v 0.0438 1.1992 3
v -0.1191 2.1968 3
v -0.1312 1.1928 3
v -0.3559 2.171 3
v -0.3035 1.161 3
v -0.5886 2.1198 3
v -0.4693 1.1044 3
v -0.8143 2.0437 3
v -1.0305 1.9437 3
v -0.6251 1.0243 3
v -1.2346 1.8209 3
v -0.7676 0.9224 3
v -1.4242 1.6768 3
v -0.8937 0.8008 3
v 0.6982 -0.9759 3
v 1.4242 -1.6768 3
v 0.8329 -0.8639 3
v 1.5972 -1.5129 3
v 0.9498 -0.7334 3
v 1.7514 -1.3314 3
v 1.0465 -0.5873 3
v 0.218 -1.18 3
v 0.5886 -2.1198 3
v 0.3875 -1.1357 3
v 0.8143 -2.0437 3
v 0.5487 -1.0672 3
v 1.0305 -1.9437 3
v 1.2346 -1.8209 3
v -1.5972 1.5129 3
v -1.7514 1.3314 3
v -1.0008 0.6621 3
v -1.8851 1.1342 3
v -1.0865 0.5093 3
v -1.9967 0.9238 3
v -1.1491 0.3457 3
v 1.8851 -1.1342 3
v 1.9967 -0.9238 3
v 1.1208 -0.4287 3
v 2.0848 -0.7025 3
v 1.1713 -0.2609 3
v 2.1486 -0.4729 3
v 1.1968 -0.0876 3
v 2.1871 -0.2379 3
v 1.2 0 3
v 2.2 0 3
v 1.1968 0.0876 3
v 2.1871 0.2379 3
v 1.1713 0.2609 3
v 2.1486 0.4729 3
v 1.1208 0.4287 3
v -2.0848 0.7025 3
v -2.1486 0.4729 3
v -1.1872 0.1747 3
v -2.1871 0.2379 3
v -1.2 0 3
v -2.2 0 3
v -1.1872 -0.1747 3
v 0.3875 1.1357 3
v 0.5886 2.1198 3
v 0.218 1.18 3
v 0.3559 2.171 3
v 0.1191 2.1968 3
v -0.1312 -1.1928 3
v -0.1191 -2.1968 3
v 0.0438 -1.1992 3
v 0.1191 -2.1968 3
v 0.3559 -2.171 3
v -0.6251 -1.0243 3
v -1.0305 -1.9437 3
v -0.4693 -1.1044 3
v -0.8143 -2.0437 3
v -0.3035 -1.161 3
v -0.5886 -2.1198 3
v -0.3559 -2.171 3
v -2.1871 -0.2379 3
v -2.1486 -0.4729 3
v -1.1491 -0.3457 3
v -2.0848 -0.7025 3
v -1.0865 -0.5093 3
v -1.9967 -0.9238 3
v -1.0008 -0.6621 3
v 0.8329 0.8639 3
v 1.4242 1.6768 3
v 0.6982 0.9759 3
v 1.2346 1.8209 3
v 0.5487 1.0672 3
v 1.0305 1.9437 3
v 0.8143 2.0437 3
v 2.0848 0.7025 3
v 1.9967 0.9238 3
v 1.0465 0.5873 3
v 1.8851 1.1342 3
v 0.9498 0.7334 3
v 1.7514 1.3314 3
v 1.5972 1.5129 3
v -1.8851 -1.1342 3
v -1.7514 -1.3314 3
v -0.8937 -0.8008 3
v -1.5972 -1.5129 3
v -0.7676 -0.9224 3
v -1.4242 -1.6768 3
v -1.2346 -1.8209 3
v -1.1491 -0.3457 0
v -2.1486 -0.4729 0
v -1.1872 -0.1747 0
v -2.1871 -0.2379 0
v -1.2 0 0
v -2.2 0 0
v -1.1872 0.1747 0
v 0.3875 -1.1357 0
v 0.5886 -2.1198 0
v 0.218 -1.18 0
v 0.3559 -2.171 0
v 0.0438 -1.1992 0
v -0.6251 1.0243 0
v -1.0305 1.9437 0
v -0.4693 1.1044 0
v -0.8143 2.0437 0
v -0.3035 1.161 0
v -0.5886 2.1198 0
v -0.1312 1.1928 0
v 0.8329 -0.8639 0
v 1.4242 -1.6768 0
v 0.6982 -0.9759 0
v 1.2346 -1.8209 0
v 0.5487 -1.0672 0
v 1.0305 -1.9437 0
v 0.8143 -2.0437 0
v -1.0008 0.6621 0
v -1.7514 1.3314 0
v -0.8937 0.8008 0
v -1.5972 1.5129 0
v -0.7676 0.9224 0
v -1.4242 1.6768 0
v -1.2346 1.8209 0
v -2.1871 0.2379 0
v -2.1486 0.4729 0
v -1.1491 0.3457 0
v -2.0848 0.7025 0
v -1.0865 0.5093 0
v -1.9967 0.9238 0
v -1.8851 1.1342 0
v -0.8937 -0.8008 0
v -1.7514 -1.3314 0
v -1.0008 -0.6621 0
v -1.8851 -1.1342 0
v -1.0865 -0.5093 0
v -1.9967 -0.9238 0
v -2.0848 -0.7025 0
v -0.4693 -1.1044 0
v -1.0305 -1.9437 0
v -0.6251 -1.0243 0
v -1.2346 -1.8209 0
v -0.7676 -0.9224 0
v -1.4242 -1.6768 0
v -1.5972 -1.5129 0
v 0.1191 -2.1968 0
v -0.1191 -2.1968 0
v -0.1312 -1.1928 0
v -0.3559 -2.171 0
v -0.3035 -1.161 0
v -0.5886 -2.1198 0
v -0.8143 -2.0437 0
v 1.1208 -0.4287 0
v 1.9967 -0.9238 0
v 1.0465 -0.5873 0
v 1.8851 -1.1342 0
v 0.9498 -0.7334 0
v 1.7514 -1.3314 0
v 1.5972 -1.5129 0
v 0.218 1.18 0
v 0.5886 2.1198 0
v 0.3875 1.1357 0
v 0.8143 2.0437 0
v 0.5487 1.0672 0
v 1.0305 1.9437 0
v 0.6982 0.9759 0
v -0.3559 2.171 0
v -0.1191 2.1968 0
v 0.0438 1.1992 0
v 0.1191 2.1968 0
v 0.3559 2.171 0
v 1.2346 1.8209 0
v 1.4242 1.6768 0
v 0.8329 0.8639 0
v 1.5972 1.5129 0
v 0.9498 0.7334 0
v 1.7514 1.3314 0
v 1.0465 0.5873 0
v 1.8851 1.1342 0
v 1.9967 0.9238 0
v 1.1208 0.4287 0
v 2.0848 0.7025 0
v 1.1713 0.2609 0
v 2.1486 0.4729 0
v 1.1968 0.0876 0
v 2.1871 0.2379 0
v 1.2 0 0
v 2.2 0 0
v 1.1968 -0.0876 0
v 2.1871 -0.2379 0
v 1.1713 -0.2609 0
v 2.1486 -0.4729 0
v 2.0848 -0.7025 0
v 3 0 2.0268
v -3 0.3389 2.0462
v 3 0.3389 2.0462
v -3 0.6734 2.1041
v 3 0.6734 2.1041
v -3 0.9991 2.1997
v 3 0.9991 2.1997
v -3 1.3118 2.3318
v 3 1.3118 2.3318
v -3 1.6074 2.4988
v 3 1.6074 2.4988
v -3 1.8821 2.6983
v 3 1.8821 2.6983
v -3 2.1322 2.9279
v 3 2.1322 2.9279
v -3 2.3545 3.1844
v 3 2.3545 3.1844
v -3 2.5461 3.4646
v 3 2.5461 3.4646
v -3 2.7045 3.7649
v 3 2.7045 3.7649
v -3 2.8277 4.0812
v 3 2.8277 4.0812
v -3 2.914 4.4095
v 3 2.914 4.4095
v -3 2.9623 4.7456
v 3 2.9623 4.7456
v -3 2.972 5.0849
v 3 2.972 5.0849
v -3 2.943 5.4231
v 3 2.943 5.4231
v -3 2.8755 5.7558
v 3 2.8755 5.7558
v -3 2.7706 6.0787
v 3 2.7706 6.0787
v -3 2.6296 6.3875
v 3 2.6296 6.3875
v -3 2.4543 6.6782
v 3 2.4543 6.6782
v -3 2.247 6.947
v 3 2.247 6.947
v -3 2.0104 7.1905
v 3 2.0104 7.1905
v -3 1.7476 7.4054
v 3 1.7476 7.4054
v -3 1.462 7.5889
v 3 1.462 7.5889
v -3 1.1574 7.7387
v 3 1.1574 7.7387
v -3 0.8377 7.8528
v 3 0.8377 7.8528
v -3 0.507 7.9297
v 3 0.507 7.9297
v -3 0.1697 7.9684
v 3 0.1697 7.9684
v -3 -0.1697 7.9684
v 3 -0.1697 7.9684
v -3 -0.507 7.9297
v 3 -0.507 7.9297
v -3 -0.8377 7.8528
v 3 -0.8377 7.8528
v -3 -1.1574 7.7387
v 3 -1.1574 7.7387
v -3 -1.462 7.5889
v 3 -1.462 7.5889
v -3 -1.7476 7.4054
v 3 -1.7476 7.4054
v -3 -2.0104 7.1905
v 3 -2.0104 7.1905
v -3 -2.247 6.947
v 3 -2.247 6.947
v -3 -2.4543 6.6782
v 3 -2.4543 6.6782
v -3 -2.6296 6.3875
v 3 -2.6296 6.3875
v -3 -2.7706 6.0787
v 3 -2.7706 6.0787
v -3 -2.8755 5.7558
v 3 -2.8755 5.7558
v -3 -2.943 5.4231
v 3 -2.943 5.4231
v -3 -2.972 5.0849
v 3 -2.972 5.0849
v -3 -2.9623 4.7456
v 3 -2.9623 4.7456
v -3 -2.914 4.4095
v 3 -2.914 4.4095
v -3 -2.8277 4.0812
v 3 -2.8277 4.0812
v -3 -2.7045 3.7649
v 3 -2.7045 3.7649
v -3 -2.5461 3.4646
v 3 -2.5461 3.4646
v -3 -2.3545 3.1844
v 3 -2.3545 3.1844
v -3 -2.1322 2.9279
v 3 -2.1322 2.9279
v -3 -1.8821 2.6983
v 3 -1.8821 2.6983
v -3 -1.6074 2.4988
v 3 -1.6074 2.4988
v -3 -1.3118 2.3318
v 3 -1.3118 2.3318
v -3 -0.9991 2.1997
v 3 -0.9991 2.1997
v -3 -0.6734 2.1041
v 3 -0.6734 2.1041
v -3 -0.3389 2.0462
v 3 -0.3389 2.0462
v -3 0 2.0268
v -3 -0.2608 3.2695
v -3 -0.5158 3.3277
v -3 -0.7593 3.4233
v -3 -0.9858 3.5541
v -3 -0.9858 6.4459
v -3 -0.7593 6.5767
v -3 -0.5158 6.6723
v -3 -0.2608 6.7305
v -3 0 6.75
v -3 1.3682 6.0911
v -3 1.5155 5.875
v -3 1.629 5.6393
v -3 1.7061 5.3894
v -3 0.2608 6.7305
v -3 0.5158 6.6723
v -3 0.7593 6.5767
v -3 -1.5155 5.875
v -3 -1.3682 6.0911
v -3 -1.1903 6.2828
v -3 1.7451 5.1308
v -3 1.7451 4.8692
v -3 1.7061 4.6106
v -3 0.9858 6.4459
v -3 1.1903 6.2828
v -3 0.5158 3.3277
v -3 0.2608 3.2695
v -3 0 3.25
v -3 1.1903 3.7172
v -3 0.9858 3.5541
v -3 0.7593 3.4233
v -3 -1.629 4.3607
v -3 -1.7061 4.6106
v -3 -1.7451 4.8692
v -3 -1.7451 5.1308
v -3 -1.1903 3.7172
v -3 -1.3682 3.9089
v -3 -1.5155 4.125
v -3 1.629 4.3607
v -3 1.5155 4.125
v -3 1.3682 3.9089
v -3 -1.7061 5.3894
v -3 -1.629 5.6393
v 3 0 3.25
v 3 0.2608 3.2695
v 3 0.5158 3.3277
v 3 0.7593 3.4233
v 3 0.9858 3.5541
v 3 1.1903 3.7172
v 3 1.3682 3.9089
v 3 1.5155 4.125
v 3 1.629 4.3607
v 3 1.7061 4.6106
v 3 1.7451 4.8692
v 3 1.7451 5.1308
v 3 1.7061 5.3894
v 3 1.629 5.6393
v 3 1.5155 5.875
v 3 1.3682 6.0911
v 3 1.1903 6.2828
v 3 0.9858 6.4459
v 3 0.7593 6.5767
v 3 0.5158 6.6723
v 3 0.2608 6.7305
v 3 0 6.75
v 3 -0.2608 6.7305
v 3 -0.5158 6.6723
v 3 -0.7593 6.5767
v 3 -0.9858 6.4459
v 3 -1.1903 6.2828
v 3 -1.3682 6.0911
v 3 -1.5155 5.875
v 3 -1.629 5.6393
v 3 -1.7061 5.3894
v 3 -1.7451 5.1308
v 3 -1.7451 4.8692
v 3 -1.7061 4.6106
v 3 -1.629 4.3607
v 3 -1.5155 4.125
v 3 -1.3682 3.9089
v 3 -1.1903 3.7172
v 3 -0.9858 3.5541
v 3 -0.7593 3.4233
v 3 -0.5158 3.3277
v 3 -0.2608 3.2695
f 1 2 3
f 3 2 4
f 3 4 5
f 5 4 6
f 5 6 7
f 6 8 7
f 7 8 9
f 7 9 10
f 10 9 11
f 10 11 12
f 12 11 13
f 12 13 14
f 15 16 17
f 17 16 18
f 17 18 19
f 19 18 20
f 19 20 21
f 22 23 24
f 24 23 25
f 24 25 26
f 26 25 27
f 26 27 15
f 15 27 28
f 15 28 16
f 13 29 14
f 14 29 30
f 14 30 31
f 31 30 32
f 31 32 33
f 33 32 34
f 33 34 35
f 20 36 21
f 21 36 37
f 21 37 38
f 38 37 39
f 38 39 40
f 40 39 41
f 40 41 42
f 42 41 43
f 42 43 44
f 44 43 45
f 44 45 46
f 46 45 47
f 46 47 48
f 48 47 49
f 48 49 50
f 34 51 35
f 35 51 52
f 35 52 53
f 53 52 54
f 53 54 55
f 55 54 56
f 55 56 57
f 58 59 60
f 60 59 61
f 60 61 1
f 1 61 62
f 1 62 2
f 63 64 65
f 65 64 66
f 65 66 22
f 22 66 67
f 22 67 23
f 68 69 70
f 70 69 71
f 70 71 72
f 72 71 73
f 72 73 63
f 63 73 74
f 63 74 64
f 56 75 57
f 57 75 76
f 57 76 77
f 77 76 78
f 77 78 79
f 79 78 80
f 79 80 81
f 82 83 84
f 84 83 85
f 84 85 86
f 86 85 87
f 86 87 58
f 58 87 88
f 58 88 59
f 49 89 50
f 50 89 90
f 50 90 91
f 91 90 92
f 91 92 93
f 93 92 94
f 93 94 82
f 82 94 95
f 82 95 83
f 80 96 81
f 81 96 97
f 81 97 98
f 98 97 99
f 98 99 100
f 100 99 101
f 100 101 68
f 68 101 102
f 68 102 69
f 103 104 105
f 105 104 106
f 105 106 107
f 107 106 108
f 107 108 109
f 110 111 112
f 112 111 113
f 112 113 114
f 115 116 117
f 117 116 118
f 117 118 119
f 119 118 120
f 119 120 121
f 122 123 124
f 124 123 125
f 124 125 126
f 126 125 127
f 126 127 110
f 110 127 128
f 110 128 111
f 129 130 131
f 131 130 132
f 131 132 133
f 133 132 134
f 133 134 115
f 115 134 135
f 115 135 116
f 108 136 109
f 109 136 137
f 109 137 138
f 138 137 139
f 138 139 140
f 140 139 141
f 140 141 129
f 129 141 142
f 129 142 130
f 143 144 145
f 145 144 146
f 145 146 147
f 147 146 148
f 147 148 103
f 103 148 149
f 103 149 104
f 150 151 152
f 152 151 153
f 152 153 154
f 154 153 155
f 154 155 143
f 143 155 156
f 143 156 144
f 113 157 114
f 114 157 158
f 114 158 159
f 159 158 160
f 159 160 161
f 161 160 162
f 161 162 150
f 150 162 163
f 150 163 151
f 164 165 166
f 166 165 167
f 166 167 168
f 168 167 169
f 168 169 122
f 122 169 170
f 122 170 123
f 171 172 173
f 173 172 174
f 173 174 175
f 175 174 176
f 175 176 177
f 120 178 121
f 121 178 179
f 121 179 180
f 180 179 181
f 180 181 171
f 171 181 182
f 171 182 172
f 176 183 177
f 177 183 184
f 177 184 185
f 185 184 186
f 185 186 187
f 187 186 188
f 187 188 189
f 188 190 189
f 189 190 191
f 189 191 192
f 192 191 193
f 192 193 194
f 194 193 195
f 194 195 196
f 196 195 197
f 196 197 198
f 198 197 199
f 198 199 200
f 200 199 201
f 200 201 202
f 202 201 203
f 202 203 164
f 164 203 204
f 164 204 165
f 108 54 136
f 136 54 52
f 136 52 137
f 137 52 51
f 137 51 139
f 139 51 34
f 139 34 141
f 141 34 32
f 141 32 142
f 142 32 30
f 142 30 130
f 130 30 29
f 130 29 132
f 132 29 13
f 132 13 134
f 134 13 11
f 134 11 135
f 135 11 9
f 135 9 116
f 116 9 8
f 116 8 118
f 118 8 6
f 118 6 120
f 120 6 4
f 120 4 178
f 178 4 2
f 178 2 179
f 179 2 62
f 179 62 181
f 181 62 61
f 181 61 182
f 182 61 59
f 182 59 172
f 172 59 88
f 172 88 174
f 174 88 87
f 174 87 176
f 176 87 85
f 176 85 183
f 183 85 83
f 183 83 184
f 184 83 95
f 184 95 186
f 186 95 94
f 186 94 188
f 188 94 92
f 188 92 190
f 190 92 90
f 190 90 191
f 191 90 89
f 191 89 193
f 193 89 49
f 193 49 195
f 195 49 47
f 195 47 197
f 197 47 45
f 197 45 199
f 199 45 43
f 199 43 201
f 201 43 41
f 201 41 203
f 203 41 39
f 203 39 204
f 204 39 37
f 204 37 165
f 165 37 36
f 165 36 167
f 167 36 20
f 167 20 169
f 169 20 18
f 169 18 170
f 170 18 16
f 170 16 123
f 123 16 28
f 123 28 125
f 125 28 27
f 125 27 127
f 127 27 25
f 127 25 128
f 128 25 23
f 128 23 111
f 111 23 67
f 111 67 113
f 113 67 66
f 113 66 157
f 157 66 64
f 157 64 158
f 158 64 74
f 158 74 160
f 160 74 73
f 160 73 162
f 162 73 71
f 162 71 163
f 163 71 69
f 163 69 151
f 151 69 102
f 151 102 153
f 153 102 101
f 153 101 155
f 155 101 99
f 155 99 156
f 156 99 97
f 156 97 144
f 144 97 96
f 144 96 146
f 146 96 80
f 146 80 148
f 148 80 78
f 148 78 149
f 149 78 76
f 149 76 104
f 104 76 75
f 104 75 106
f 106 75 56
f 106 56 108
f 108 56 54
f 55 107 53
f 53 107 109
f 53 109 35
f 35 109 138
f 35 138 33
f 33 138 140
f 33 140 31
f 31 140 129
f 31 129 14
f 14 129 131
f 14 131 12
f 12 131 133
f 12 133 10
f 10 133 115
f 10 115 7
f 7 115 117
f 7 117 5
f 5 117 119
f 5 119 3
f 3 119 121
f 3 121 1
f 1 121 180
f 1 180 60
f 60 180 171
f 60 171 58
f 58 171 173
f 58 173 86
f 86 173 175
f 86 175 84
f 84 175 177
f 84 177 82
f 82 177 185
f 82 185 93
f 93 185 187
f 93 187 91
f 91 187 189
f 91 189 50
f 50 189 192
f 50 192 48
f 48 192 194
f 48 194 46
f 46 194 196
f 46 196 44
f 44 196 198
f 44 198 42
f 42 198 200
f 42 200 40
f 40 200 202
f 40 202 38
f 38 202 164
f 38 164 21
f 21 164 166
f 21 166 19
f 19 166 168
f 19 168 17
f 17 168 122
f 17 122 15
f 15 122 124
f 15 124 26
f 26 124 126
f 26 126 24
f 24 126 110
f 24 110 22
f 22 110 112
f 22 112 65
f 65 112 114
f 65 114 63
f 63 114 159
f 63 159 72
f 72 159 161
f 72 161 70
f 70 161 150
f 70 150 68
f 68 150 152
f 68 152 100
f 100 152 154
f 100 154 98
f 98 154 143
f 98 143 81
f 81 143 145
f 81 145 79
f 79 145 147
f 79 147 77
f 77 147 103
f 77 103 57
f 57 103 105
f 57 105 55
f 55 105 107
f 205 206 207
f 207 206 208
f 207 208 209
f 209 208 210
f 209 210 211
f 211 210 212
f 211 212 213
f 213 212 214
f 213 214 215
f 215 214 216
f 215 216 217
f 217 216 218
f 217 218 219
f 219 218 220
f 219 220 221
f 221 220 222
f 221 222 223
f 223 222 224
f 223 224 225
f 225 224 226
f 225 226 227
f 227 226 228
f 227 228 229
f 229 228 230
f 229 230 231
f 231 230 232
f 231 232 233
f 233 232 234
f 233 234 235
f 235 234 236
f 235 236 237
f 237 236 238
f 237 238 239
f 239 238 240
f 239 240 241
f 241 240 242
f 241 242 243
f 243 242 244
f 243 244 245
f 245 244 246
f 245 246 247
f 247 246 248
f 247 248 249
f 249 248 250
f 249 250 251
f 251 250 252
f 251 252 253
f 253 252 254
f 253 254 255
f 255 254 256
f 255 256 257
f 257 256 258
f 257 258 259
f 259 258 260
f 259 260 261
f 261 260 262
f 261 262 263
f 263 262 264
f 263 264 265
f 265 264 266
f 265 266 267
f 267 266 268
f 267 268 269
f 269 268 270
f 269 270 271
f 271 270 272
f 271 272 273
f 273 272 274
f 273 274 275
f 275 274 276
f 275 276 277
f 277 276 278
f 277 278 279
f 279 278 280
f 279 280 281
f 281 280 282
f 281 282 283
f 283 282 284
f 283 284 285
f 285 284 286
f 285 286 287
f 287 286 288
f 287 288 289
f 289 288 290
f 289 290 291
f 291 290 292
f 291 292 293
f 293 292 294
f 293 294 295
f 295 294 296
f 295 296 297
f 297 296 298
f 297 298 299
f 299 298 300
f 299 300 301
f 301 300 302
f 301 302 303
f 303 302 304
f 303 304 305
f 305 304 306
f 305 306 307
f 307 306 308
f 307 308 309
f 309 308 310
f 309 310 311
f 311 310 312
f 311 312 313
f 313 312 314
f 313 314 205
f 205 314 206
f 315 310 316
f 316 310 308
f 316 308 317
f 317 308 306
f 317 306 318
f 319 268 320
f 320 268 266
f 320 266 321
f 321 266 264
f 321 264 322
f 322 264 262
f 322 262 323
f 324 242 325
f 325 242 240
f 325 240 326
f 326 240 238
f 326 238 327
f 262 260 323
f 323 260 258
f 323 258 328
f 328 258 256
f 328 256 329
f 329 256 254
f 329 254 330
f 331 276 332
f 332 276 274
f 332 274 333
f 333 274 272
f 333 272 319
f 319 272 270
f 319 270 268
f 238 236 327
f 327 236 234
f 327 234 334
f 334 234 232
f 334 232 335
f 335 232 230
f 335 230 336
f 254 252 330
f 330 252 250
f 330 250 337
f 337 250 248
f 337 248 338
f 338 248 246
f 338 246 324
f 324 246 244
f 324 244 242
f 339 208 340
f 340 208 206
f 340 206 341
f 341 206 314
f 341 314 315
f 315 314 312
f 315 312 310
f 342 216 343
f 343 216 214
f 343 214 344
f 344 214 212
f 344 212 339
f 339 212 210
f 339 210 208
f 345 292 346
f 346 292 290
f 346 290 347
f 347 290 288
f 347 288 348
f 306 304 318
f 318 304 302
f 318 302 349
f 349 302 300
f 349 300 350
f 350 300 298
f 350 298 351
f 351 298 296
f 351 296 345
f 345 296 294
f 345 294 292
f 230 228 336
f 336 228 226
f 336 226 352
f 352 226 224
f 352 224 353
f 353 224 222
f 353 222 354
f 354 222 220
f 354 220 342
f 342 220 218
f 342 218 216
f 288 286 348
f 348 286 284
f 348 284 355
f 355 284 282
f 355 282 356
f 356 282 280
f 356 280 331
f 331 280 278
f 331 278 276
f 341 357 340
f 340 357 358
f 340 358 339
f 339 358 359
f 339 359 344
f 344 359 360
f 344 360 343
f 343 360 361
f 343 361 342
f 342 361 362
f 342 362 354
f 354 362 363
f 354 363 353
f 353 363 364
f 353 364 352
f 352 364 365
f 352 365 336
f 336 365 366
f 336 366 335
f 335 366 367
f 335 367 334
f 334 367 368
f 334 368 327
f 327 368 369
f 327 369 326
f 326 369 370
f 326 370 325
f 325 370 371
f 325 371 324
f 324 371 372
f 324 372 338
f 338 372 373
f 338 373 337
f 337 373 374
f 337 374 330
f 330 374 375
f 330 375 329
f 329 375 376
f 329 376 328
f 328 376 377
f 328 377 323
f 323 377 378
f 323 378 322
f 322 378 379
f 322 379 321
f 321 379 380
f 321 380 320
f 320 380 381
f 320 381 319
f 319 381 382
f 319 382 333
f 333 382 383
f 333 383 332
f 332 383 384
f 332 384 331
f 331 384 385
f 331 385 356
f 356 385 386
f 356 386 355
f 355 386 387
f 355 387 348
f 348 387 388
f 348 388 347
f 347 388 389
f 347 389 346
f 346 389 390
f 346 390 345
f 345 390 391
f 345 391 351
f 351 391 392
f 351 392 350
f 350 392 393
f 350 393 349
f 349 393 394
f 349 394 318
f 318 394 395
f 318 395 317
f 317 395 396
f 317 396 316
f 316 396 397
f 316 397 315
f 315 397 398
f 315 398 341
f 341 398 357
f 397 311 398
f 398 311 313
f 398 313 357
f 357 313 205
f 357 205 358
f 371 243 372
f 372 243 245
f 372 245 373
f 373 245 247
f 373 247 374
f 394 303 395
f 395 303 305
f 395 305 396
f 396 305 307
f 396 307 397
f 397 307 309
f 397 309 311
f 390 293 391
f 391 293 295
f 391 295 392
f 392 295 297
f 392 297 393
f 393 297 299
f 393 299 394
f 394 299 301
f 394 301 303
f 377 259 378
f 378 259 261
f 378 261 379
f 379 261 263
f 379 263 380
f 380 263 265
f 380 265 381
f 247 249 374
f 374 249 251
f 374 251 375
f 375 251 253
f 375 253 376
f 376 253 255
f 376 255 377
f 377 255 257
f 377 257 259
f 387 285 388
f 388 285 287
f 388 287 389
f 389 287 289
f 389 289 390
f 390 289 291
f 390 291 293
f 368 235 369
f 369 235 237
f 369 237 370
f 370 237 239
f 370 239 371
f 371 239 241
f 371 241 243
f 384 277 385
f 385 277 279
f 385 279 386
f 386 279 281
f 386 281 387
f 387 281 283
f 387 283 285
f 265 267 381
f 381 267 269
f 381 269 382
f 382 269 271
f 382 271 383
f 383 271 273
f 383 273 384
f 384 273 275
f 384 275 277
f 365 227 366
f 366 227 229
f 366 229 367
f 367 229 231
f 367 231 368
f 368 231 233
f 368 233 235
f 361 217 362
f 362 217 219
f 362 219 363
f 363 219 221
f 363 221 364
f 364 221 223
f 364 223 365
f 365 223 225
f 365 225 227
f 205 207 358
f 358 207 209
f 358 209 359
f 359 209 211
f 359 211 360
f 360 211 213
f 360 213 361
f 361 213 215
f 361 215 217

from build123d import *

# Parameters (mm, degrees)
SKETCH_1_R           = 2.2
SKETCH_1_R_2         = 1.2
EXTRUDE_1_DEPTH      = 3
EXTRUDE_2_DEPTH      = 3
EXTRUDE_2_DEPTH_BACK = 3
SKETCH_2_R           = 2.973213749
SKETCH_2_R_2         = 1.75


with BuildPart() as part:
    # 草图1 → 凸台-拉伸1 (new body)
    with BuildSketch(Plane.XY):
        Circle(SKETCH_1_R)
        Circle(SKETCH_1_R_2, mode=Mode.SUBTRACT)
    extrude(amount=EXTRUDE_1_DEPTH)


with BuildPart() as body_2:
    # 草图2 → 凸台-拉伸2 (new, two sides: drawn at the far end of the back side and taken through both)
    with BuildSketch(Plane(origin=(0, 0, 0), x_dir=(0, 0, -1), z_dir=(1, 0, 0)).offset(-EXTRUDE_2_DEPTH_BACK)):
        with Locations((-5, 0)):
            Circle(SKETCH_2_R)
        with Locations((-5, 0)):
            Circle(SKETCH_2_R_2, mode=Mode.SUBTRACT)
    extrude(amount=EXTRUDE_2_DEPTH + EXTRUDE_2_DEPTH_BACK)


solid = Compound([part.part, body_2.part])
